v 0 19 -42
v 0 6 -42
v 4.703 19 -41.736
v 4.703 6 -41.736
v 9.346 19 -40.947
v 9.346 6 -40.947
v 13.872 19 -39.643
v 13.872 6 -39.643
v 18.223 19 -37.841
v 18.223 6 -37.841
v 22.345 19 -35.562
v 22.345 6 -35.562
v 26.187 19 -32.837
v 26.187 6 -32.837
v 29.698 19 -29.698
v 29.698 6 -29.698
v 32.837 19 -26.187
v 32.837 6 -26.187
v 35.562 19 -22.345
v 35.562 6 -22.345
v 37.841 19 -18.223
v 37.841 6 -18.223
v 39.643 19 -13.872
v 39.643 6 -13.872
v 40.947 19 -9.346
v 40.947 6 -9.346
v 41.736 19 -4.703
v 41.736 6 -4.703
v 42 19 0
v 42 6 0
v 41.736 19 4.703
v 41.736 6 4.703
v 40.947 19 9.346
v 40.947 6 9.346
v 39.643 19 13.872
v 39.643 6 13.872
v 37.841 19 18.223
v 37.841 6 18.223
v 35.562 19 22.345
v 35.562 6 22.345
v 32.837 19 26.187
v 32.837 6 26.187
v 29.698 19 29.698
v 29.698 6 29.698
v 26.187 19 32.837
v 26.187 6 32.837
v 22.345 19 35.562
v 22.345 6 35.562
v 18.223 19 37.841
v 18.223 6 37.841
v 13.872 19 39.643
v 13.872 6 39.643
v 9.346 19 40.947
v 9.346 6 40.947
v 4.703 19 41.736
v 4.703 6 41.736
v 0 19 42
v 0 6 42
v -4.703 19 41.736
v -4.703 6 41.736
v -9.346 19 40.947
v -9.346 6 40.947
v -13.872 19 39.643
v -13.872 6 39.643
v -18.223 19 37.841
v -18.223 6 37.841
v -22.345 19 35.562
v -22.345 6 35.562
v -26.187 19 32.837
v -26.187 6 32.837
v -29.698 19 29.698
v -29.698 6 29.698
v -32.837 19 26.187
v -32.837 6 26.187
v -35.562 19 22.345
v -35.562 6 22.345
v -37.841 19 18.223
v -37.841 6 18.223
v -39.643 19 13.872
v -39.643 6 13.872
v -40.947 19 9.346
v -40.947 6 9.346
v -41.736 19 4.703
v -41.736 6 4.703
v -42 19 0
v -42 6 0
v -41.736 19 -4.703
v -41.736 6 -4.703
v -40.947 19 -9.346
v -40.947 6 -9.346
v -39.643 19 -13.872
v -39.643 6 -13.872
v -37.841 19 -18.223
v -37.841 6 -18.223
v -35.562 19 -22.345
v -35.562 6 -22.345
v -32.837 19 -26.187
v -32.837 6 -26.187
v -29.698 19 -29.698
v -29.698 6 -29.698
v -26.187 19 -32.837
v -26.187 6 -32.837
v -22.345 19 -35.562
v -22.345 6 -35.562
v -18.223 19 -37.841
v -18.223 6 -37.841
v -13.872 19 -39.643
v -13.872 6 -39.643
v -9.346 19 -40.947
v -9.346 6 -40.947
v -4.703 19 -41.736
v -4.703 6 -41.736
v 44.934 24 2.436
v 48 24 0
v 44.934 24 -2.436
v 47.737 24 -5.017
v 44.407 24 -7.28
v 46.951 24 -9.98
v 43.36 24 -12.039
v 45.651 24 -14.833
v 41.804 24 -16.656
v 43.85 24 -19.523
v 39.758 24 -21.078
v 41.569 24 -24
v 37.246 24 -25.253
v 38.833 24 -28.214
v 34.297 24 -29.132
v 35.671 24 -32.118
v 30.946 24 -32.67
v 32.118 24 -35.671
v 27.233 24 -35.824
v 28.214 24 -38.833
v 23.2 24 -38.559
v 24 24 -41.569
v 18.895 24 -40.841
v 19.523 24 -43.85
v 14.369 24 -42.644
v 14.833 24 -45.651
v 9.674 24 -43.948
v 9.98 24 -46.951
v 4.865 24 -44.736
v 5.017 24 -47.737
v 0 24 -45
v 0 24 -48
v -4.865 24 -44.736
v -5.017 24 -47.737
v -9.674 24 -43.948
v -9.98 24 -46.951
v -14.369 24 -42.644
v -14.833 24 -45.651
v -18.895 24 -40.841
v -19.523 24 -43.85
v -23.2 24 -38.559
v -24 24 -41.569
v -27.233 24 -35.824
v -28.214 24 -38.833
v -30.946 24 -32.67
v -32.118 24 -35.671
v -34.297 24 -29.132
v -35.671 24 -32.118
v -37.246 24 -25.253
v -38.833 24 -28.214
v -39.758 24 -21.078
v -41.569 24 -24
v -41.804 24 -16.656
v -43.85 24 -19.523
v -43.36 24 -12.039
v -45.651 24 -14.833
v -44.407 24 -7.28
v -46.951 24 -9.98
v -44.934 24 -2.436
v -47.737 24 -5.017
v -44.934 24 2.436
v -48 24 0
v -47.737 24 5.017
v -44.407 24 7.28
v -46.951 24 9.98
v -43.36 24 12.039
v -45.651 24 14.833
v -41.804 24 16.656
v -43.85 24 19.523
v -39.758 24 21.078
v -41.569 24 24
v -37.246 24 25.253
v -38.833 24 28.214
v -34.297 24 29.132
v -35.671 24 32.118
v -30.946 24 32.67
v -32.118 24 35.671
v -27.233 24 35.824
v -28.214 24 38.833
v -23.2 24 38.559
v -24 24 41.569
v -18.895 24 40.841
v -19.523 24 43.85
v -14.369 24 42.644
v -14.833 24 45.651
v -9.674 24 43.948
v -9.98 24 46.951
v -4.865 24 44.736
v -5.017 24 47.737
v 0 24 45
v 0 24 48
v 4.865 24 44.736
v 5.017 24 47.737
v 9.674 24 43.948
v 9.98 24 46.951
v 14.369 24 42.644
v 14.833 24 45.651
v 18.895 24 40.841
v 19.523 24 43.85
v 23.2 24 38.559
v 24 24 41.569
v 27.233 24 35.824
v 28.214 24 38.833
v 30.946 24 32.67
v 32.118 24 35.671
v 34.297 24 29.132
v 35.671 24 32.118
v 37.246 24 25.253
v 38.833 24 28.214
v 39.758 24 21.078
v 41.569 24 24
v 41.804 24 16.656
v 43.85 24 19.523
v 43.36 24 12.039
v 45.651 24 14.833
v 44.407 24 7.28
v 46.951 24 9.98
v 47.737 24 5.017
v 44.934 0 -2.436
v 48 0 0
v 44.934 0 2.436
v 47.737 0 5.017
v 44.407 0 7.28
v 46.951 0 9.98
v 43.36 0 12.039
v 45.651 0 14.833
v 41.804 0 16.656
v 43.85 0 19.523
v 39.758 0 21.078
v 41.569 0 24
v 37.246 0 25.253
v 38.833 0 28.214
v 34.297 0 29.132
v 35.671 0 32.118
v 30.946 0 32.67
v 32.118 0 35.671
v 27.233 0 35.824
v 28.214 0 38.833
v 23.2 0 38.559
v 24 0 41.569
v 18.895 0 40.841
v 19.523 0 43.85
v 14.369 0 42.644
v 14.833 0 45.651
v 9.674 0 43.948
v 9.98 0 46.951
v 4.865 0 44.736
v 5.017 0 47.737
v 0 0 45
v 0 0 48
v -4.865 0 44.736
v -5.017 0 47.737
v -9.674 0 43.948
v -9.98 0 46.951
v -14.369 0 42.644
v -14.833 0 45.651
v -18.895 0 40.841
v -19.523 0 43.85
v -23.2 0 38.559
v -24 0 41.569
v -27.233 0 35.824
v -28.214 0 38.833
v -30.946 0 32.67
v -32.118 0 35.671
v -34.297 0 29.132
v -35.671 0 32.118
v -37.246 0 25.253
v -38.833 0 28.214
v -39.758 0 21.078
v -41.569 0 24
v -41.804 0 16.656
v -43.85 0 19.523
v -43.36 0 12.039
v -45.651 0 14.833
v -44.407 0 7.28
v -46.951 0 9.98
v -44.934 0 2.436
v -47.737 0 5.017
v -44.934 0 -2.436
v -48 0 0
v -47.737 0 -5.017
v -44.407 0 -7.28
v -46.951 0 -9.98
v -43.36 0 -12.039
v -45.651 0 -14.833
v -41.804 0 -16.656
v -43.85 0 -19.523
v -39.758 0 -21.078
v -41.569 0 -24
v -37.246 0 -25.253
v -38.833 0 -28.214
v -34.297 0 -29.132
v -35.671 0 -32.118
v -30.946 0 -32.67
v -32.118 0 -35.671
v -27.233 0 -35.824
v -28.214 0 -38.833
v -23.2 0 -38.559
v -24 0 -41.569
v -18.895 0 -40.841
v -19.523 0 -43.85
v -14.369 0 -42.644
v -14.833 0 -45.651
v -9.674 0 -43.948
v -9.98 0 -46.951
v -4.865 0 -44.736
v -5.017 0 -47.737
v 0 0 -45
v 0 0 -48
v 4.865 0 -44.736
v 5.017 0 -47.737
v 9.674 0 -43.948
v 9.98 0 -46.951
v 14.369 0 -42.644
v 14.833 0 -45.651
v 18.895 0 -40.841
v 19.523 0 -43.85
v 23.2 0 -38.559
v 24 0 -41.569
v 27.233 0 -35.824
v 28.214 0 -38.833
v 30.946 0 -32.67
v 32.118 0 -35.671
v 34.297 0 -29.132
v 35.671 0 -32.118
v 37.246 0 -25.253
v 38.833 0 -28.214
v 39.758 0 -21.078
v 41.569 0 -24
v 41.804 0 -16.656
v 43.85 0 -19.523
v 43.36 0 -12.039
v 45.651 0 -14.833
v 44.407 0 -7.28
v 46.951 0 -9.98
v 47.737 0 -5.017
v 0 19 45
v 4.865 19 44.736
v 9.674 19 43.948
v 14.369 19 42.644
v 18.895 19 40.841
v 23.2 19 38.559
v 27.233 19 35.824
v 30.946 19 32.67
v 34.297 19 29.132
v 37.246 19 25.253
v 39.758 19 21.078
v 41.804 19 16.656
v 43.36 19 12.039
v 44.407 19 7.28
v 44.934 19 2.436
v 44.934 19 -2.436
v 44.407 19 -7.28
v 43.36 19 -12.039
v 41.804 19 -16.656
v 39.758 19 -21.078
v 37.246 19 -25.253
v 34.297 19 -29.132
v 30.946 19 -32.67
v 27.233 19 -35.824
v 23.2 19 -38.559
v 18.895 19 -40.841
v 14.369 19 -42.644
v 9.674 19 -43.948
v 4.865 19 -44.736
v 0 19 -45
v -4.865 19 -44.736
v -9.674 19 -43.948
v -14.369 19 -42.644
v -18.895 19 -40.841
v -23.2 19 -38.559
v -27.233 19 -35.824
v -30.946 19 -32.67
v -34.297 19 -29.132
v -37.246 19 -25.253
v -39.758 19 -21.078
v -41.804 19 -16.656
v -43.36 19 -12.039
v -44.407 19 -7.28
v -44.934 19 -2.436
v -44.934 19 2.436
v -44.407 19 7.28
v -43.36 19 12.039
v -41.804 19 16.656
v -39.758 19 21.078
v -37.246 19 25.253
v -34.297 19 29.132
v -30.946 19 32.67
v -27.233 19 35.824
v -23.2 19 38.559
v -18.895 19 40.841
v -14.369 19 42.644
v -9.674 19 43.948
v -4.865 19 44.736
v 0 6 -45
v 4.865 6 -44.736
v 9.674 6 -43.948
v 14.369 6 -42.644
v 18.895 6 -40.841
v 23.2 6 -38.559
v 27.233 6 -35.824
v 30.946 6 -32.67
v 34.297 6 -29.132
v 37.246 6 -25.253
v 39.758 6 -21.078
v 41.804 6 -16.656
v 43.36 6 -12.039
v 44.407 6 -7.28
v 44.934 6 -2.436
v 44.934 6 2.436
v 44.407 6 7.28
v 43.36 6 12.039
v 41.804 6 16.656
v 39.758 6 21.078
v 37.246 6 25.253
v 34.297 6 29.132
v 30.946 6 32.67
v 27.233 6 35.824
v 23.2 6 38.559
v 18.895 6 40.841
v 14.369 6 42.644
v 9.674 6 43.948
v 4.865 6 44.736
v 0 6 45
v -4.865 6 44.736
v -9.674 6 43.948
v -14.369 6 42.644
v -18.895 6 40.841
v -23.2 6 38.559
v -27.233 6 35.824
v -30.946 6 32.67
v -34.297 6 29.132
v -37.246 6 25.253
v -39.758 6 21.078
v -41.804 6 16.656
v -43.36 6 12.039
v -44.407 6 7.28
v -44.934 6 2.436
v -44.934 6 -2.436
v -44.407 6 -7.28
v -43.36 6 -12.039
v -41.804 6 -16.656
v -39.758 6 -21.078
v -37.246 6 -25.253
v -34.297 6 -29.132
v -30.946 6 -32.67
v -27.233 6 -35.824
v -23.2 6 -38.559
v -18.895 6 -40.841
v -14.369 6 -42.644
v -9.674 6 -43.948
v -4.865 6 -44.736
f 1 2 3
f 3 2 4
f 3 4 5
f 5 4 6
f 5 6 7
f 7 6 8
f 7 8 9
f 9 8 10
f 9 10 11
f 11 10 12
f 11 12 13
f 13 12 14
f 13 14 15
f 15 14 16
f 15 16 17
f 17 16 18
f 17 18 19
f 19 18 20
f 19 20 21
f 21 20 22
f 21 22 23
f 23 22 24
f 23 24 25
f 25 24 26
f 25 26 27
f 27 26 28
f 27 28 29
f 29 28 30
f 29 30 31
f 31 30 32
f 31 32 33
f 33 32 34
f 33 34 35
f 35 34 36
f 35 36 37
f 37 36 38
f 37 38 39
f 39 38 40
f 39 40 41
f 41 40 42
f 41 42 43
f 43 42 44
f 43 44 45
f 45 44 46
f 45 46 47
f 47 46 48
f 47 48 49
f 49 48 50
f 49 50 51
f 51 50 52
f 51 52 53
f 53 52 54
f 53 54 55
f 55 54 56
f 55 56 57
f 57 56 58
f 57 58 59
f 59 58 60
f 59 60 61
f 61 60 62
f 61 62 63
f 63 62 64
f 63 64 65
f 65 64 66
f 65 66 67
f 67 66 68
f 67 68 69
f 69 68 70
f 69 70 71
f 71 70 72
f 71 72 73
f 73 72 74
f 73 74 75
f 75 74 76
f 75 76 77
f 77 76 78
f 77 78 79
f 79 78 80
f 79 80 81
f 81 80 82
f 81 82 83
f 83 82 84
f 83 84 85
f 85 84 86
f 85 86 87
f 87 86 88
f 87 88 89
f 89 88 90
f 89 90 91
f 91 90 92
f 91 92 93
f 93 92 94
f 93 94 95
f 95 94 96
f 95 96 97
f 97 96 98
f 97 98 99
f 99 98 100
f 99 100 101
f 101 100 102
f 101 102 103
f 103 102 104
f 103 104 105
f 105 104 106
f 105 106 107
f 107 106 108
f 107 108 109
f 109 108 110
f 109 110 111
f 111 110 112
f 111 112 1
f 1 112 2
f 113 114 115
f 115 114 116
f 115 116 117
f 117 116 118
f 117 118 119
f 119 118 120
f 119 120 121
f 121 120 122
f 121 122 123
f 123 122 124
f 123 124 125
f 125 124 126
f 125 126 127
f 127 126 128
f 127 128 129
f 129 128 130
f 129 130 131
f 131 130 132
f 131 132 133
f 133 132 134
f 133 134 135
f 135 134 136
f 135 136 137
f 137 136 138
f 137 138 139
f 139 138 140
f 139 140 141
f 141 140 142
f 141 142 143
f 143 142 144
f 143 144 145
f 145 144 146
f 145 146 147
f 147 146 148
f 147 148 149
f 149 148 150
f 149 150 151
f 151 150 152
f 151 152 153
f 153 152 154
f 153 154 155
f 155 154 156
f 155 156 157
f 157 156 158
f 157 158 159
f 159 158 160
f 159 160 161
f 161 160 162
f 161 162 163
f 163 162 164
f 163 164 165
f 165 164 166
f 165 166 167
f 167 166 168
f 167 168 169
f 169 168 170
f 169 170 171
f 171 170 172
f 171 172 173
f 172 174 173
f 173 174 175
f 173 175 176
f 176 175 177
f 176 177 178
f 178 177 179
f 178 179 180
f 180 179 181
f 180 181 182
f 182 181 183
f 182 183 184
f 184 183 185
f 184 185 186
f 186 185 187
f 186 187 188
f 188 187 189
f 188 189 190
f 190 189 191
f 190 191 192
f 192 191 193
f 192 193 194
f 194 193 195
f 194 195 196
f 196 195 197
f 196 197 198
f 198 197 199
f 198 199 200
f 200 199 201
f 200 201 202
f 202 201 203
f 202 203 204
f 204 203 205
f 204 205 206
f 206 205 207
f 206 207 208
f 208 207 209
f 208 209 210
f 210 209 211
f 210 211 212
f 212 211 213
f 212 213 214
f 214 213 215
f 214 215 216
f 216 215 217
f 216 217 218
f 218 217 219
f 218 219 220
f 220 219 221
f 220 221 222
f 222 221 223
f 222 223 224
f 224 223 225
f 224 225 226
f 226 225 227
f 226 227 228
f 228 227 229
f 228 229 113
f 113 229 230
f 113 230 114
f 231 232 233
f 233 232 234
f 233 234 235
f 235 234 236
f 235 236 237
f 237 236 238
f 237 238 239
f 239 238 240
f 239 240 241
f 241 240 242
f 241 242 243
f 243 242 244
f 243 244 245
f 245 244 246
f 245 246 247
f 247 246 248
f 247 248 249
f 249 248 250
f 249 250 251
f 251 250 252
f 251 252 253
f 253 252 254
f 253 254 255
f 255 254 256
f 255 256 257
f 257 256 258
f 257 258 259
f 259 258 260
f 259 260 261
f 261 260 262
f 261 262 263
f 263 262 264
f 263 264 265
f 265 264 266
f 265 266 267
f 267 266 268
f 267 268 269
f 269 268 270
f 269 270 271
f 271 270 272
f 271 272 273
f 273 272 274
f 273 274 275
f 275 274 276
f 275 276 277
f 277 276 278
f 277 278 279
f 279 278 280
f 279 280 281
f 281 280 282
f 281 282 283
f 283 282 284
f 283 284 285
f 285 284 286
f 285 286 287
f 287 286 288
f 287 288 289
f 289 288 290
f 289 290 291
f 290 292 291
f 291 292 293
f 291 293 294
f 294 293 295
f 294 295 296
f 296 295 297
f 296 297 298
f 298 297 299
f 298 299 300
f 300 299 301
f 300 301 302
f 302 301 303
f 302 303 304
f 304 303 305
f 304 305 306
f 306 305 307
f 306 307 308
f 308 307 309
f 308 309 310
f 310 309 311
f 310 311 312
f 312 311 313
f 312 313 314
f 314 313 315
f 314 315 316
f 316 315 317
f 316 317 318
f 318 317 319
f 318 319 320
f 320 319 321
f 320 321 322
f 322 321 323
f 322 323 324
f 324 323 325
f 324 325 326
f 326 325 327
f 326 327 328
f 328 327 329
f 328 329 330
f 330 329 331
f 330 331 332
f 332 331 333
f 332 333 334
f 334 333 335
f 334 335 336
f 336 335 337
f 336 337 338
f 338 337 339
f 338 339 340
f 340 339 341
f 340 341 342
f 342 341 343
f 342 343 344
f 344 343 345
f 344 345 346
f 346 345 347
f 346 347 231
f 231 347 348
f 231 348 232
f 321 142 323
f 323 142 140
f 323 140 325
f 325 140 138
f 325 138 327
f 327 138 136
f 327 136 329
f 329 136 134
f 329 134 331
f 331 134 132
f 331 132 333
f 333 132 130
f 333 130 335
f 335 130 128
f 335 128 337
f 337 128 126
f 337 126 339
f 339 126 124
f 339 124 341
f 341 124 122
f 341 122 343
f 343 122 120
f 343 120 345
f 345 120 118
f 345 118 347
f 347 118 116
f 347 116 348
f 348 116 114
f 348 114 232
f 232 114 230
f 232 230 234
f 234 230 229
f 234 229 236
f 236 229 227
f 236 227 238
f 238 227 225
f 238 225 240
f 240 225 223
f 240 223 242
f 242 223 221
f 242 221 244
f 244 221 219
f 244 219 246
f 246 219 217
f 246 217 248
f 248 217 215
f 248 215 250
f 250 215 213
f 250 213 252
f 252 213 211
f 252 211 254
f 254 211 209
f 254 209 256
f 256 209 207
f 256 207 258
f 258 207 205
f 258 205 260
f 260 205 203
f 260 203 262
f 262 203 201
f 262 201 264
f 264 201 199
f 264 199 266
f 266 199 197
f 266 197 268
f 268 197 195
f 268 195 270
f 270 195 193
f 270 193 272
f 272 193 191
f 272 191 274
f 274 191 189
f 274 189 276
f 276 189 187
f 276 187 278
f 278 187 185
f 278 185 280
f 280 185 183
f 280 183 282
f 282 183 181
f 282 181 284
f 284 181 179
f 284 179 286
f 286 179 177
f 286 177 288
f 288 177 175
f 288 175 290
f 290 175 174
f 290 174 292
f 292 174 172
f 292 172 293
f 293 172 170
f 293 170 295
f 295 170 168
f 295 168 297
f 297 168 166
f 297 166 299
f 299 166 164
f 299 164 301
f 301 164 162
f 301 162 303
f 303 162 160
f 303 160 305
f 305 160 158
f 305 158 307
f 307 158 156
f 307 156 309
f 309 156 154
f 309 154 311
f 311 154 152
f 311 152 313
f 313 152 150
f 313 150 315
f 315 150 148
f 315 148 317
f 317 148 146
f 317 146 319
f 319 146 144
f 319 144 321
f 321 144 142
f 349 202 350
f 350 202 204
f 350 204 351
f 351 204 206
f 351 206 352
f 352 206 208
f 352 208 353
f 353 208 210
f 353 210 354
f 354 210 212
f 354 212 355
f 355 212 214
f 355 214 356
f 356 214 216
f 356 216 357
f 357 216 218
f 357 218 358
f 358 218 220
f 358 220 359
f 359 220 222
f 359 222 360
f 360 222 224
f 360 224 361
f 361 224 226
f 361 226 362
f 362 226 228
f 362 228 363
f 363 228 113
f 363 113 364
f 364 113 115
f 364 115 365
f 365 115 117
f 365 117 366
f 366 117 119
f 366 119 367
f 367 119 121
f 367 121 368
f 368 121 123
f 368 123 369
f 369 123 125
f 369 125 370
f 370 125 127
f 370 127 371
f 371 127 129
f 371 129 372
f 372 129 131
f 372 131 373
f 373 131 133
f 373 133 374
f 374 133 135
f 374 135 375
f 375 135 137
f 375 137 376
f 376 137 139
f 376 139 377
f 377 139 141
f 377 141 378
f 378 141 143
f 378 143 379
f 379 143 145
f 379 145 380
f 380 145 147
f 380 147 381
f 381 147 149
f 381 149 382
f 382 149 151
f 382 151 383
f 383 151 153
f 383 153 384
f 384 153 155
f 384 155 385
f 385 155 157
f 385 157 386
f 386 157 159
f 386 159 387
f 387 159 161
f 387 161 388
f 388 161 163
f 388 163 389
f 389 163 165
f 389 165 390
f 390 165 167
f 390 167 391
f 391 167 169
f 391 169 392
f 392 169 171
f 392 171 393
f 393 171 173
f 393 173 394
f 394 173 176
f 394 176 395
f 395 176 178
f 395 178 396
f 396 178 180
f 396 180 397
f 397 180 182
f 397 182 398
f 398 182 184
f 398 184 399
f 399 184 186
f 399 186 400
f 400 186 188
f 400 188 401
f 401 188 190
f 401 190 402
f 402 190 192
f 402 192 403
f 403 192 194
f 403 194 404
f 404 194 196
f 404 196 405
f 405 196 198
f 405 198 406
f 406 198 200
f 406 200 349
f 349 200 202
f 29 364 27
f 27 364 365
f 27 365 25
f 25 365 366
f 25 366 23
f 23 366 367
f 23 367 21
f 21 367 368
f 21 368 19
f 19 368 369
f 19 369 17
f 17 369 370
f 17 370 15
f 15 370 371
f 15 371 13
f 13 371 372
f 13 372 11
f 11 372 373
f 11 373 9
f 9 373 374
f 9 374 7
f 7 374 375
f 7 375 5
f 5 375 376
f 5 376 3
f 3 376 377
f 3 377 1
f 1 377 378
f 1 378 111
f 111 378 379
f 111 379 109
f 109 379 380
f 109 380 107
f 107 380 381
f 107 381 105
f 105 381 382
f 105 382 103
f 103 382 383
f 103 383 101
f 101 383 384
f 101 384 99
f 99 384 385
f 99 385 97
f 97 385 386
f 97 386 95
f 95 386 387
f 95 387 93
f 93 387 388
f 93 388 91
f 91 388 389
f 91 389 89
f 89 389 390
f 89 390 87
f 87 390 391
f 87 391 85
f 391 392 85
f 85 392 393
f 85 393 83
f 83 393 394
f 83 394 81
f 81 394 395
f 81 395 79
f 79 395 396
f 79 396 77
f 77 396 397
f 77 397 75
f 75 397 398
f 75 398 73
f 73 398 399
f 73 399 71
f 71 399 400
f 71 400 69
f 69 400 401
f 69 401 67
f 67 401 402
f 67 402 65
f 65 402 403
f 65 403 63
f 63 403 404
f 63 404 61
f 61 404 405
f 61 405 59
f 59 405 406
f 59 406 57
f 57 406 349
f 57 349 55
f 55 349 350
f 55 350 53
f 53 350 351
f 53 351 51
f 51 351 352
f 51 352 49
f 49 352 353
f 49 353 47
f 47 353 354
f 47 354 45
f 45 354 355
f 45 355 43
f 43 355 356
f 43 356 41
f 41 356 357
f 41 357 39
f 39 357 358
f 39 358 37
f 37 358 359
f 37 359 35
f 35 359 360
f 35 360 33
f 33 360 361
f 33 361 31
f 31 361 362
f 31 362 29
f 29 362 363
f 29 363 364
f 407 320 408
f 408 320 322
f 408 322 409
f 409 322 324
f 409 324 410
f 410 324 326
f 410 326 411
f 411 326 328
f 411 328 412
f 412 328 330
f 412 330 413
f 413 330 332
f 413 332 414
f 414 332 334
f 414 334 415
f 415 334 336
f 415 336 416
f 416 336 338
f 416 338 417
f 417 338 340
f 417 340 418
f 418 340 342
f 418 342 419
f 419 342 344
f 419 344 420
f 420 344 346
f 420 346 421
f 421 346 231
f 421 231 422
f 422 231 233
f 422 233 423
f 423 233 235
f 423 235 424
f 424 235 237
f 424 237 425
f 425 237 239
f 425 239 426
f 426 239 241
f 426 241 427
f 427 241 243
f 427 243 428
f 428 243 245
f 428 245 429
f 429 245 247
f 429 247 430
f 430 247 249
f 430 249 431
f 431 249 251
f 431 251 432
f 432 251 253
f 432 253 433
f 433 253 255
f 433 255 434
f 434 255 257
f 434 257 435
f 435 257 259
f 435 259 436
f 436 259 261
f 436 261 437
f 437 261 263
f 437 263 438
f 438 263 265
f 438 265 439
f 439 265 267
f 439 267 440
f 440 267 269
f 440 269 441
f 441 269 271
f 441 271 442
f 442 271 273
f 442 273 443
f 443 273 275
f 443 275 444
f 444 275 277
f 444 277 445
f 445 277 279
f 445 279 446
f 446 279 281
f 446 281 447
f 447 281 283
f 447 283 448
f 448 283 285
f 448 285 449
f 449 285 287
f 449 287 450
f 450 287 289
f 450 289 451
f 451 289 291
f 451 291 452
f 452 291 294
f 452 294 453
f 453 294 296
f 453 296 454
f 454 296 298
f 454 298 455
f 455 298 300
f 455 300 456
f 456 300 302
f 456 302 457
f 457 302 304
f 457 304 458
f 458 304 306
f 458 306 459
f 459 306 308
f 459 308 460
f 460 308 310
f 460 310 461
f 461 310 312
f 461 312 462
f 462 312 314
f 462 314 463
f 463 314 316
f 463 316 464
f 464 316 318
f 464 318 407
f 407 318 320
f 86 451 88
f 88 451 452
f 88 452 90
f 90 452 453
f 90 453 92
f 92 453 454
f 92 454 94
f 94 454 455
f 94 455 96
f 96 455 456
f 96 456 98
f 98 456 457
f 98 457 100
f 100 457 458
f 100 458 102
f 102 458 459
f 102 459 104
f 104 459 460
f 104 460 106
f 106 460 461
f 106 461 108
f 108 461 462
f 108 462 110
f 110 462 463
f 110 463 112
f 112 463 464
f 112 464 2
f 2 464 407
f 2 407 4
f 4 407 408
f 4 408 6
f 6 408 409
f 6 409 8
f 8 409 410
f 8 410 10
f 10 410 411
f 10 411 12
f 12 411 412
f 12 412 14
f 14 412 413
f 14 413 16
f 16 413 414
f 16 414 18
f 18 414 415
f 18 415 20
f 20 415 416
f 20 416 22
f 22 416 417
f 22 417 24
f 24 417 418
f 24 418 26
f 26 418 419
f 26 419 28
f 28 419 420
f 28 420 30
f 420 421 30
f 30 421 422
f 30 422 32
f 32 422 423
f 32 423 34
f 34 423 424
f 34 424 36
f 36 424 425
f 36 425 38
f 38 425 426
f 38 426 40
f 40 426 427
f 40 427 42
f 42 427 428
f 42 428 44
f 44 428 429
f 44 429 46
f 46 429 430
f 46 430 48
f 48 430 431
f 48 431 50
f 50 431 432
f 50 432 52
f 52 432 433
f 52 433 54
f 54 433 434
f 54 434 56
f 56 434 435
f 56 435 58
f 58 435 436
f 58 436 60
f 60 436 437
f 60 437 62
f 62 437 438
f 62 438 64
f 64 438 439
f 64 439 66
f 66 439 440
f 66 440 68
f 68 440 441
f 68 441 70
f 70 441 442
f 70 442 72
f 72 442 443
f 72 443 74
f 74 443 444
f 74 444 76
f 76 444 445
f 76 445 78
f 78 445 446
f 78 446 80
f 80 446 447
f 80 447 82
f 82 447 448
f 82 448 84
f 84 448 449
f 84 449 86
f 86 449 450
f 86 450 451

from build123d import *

# Parameters (mm, degrees)
SKIZZE1_R                       = 48
SKIZZE1_R_2                     = 42
AUFSATZ_LINEAR_AUSTRAGEN2_DEPTH = 24
SKIZZE2_R                       = 45
SCHNITT_LINEAR_AUSTRAGEN1_DEPTH = 5
SCHNITT_LINEAR_START            = -6
SKIZZE4_R                       = 45
SCHNITT_LINEAR_AUSTRAGEN2_DEPTH = 6


with BuildPart() as part:
    # Skizze1 → Aufsatz-Linear austragen2 (new body)
    with BuildSketch(Plane(origin=(0, 0, 0), x_dir=(1, 0, 0), z_dir=(0, 1, 0))):
        with Locations(Location((0, 0, 0), (0, 0, 270))):
            Circle(SKIZZE1_R)
        with Locations(Location((0, 0, 0), (0, 0, 270))):
            Circle(SKIZZE1_R_2, mode=Mode.SUBTRACT)
    extrude(amount=AUFSATZ_LINEAR_AUSTRAGEN2_DEPTH)

    # Skizze2 → Schnitt-Linear austragen1 (cut)
    with BuildSketch(Plane(origin=(0, 24, 0), x_dir=(1, 0, 0), z_dir=(0, 1, 0))):
        with Locations(Location((0, 0, 0), (0, 0, 270))):
            Circle(SKIZZE2_R)
    extrude(amount=-SCHNITT_LINEAR_AUSTRAGEN1_DEPTH, mode=Mode.SUBTRACT)

    # Skizze4 → Schnitt-Linear austragen2 (cut)
    with BuildSketch(Plane.XZ.offset(SCHNITT_LINEAR_START)):
        with Locations(Location((0, 0, 0), (0, 0, 90))):
            Circle(SKIZZE4_R)
    extrude(amount=SCHNITT_LINEAR_AUSTRAGEN2_DEPTH, mode=Mode.SUBTRACT)


solid = part.part
